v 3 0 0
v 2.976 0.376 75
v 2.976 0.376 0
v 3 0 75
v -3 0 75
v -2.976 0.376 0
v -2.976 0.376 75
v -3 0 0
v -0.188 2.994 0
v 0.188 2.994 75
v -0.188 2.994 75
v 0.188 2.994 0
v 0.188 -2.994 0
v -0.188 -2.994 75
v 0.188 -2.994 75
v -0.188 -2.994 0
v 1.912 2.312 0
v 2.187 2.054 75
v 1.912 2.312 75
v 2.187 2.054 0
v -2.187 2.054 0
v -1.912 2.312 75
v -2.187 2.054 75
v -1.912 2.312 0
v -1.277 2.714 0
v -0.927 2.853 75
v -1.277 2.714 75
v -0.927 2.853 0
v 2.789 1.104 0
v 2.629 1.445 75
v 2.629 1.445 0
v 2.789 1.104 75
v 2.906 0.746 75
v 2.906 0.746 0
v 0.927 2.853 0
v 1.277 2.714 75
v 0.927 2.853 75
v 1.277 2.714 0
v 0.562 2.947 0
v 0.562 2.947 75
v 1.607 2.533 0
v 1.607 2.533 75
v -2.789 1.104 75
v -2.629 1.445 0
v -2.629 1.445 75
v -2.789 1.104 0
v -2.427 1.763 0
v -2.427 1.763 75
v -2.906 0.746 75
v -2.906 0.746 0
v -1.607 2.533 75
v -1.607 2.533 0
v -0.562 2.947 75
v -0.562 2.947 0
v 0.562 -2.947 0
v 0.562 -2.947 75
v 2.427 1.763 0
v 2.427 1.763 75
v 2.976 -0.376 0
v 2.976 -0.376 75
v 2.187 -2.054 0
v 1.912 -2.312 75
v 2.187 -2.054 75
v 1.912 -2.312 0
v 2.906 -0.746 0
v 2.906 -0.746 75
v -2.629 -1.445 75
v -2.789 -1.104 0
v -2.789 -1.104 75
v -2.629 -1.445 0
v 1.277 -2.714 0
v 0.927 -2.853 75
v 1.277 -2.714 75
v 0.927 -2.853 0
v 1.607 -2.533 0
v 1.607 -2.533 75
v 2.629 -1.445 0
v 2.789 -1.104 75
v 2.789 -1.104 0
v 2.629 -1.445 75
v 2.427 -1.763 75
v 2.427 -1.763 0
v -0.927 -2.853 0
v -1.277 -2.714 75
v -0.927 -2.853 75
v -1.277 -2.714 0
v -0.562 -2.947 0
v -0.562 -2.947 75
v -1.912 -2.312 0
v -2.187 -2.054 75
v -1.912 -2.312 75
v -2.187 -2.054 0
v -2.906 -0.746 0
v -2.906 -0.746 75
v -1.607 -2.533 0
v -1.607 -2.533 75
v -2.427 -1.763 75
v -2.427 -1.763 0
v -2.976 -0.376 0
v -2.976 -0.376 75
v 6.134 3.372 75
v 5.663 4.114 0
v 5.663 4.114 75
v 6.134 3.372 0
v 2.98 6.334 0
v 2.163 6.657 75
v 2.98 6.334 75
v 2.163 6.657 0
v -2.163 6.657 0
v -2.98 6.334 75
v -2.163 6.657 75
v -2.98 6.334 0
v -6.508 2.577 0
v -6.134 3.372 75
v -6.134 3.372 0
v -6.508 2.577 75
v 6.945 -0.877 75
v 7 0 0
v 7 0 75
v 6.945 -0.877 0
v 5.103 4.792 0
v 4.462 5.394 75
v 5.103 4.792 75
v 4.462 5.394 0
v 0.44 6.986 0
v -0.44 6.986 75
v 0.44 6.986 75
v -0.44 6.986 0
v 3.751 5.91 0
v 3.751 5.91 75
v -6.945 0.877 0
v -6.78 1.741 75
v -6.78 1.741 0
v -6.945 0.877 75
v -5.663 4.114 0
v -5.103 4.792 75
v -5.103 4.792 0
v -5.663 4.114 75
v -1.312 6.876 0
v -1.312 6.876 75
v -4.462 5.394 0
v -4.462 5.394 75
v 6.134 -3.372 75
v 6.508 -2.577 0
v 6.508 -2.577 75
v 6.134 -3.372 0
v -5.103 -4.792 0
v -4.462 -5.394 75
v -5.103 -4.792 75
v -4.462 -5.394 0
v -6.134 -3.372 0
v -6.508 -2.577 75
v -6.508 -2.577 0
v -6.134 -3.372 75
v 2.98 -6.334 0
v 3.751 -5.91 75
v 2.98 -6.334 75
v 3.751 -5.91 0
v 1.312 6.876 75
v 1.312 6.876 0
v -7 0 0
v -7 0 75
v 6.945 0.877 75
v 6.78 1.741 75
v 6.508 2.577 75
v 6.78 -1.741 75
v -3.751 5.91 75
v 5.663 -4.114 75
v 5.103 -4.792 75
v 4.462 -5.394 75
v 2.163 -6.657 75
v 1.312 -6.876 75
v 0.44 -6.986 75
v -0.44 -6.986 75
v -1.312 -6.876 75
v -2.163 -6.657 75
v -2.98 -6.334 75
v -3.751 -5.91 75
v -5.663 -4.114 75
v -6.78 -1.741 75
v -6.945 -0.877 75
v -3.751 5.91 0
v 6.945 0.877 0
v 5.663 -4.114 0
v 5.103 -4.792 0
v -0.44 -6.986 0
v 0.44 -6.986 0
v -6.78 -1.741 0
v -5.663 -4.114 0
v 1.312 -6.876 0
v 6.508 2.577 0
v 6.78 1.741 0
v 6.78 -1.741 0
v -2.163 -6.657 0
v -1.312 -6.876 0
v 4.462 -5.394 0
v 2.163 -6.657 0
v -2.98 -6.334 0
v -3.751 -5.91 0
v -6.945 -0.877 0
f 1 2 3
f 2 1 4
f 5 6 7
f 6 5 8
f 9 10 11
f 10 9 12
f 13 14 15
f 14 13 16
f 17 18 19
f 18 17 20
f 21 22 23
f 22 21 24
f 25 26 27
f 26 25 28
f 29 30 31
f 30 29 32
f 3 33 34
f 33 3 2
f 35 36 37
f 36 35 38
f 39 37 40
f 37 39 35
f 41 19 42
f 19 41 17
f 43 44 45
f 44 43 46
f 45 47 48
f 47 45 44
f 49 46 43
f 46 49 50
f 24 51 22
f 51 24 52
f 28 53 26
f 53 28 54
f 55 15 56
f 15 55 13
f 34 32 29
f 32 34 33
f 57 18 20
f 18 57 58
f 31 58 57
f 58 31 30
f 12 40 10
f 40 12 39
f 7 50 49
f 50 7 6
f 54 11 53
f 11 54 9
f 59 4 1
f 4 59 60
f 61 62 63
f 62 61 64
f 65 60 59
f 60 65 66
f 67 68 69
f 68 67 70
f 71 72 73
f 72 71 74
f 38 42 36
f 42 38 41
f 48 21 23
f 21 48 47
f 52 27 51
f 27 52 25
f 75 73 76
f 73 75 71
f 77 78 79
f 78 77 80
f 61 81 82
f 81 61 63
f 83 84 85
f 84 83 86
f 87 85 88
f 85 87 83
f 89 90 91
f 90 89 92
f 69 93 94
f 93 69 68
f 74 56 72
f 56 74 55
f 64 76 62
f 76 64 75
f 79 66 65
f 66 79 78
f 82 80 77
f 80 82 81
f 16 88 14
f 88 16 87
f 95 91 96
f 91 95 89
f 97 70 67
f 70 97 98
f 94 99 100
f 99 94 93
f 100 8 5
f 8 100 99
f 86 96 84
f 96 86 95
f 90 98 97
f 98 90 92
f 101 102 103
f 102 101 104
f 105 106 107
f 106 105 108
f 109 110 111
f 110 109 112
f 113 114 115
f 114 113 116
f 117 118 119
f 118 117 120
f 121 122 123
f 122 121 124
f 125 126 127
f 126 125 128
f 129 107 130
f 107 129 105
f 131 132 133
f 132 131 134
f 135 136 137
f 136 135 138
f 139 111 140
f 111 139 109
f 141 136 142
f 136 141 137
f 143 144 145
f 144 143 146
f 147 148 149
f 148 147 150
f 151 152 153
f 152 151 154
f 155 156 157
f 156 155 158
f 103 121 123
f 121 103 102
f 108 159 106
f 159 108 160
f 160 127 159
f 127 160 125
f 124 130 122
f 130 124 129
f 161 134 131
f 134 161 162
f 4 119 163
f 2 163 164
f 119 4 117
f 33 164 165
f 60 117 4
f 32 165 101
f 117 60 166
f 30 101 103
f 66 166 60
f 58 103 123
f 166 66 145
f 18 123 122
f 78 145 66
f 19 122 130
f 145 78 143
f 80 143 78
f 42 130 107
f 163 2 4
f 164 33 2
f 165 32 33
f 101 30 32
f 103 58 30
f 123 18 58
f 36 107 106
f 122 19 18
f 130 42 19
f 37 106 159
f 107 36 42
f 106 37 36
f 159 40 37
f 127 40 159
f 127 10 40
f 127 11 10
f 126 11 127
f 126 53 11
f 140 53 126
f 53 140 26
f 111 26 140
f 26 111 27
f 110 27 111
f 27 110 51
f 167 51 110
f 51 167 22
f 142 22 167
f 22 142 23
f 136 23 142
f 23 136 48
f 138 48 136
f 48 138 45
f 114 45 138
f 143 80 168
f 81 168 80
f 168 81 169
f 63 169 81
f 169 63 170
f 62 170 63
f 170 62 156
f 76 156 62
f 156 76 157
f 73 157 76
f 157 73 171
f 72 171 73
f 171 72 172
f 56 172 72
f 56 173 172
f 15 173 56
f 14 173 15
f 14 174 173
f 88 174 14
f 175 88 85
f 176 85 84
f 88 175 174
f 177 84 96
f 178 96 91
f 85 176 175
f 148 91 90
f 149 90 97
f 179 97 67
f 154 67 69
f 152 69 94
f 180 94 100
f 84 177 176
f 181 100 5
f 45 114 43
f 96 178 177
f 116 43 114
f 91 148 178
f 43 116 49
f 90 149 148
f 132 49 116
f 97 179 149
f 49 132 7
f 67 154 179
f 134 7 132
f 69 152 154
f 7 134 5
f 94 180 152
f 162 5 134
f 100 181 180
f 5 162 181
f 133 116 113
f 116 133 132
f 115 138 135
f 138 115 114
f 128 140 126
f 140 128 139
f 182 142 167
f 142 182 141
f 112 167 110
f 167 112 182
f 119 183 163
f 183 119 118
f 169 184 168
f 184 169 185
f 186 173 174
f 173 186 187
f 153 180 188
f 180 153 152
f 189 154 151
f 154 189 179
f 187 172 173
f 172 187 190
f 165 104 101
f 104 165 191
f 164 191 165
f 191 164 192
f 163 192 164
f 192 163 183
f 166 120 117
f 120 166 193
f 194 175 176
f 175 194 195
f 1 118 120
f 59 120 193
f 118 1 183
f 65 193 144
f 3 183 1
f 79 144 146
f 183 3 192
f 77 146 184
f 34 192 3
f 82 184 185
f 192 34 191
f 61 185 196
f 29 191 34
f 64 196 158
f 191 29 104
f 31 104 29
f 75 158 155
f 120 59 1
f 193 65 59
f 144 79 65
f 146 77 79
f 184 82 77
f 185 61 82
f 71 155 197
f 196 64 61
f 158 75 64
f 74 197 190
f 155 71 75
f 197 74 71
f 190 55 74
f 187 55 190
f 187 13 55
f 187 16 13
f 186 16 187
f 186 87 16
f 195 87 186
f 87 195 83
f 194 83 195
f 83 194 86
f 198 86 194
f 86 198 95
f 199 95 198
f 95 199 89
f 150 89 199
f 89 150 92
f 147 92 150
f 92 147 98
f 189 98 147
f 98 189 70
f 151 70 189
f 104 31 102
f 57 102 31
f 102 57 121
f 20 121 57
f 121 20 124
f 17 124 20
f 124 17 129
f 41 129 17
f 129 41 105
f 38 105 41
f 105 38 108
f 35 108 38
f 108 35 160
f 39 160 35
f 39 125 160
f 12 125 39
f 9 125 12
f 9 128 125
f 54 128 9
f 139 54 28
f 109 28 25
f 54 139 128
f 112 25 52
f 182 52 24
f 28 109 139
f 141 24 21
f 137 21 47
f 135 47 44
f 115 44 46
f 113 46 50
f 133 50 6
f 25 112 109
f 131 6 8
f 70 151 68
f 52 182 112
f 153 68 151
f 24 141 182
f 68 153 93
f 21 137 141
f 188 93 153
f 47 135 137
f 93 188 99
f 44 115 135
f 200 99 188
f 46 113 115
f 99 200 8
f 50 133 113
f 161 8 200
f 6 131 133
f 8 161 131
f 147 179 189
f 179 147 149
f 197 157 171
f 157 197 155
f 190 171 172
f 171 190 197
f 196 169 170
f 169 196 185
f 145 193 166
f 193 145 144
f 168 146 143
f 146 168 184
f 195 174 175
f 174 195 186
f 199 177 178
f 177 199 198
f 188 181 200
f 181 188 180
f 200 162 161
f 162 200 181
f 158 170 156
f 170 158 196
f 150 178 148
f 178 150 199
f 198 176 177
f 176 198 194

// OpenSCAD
$fn = 50;


difference() {
	union() {
		*color(alpha = 1.0000000000, c = "gray") {
			translate(v = [0, 7, 0]) {
				linear_extrude(height = 1) {
					text(font = "Arial:style=Bold", halign = "center", size = 4.5000000000, text = "COMMENT plate main", valign = "center");
				}
			}
		}
		cylinder(h = 75, r = 7.0000000000);
	}
	union() {
		*color(alpha = 1.0000000000, c = "gray") {
			translate(v = [0, 7, 0]) {
				linear_extrude(height = 1) {
					text(font = "Arial:style=Bold", halign = "center", size = 4.5000000000, text = "COMMENT holes main", valign = "center");
				}
			}
		}
		translate(v = [0, 0, -100]) {
			cylinder(h = 200, r = 3.0000000000);
		}
		translate(v = [0, 0, -100]) {
			cylinder(h = 200, r = 1.5000000000);
		}
	}
}
